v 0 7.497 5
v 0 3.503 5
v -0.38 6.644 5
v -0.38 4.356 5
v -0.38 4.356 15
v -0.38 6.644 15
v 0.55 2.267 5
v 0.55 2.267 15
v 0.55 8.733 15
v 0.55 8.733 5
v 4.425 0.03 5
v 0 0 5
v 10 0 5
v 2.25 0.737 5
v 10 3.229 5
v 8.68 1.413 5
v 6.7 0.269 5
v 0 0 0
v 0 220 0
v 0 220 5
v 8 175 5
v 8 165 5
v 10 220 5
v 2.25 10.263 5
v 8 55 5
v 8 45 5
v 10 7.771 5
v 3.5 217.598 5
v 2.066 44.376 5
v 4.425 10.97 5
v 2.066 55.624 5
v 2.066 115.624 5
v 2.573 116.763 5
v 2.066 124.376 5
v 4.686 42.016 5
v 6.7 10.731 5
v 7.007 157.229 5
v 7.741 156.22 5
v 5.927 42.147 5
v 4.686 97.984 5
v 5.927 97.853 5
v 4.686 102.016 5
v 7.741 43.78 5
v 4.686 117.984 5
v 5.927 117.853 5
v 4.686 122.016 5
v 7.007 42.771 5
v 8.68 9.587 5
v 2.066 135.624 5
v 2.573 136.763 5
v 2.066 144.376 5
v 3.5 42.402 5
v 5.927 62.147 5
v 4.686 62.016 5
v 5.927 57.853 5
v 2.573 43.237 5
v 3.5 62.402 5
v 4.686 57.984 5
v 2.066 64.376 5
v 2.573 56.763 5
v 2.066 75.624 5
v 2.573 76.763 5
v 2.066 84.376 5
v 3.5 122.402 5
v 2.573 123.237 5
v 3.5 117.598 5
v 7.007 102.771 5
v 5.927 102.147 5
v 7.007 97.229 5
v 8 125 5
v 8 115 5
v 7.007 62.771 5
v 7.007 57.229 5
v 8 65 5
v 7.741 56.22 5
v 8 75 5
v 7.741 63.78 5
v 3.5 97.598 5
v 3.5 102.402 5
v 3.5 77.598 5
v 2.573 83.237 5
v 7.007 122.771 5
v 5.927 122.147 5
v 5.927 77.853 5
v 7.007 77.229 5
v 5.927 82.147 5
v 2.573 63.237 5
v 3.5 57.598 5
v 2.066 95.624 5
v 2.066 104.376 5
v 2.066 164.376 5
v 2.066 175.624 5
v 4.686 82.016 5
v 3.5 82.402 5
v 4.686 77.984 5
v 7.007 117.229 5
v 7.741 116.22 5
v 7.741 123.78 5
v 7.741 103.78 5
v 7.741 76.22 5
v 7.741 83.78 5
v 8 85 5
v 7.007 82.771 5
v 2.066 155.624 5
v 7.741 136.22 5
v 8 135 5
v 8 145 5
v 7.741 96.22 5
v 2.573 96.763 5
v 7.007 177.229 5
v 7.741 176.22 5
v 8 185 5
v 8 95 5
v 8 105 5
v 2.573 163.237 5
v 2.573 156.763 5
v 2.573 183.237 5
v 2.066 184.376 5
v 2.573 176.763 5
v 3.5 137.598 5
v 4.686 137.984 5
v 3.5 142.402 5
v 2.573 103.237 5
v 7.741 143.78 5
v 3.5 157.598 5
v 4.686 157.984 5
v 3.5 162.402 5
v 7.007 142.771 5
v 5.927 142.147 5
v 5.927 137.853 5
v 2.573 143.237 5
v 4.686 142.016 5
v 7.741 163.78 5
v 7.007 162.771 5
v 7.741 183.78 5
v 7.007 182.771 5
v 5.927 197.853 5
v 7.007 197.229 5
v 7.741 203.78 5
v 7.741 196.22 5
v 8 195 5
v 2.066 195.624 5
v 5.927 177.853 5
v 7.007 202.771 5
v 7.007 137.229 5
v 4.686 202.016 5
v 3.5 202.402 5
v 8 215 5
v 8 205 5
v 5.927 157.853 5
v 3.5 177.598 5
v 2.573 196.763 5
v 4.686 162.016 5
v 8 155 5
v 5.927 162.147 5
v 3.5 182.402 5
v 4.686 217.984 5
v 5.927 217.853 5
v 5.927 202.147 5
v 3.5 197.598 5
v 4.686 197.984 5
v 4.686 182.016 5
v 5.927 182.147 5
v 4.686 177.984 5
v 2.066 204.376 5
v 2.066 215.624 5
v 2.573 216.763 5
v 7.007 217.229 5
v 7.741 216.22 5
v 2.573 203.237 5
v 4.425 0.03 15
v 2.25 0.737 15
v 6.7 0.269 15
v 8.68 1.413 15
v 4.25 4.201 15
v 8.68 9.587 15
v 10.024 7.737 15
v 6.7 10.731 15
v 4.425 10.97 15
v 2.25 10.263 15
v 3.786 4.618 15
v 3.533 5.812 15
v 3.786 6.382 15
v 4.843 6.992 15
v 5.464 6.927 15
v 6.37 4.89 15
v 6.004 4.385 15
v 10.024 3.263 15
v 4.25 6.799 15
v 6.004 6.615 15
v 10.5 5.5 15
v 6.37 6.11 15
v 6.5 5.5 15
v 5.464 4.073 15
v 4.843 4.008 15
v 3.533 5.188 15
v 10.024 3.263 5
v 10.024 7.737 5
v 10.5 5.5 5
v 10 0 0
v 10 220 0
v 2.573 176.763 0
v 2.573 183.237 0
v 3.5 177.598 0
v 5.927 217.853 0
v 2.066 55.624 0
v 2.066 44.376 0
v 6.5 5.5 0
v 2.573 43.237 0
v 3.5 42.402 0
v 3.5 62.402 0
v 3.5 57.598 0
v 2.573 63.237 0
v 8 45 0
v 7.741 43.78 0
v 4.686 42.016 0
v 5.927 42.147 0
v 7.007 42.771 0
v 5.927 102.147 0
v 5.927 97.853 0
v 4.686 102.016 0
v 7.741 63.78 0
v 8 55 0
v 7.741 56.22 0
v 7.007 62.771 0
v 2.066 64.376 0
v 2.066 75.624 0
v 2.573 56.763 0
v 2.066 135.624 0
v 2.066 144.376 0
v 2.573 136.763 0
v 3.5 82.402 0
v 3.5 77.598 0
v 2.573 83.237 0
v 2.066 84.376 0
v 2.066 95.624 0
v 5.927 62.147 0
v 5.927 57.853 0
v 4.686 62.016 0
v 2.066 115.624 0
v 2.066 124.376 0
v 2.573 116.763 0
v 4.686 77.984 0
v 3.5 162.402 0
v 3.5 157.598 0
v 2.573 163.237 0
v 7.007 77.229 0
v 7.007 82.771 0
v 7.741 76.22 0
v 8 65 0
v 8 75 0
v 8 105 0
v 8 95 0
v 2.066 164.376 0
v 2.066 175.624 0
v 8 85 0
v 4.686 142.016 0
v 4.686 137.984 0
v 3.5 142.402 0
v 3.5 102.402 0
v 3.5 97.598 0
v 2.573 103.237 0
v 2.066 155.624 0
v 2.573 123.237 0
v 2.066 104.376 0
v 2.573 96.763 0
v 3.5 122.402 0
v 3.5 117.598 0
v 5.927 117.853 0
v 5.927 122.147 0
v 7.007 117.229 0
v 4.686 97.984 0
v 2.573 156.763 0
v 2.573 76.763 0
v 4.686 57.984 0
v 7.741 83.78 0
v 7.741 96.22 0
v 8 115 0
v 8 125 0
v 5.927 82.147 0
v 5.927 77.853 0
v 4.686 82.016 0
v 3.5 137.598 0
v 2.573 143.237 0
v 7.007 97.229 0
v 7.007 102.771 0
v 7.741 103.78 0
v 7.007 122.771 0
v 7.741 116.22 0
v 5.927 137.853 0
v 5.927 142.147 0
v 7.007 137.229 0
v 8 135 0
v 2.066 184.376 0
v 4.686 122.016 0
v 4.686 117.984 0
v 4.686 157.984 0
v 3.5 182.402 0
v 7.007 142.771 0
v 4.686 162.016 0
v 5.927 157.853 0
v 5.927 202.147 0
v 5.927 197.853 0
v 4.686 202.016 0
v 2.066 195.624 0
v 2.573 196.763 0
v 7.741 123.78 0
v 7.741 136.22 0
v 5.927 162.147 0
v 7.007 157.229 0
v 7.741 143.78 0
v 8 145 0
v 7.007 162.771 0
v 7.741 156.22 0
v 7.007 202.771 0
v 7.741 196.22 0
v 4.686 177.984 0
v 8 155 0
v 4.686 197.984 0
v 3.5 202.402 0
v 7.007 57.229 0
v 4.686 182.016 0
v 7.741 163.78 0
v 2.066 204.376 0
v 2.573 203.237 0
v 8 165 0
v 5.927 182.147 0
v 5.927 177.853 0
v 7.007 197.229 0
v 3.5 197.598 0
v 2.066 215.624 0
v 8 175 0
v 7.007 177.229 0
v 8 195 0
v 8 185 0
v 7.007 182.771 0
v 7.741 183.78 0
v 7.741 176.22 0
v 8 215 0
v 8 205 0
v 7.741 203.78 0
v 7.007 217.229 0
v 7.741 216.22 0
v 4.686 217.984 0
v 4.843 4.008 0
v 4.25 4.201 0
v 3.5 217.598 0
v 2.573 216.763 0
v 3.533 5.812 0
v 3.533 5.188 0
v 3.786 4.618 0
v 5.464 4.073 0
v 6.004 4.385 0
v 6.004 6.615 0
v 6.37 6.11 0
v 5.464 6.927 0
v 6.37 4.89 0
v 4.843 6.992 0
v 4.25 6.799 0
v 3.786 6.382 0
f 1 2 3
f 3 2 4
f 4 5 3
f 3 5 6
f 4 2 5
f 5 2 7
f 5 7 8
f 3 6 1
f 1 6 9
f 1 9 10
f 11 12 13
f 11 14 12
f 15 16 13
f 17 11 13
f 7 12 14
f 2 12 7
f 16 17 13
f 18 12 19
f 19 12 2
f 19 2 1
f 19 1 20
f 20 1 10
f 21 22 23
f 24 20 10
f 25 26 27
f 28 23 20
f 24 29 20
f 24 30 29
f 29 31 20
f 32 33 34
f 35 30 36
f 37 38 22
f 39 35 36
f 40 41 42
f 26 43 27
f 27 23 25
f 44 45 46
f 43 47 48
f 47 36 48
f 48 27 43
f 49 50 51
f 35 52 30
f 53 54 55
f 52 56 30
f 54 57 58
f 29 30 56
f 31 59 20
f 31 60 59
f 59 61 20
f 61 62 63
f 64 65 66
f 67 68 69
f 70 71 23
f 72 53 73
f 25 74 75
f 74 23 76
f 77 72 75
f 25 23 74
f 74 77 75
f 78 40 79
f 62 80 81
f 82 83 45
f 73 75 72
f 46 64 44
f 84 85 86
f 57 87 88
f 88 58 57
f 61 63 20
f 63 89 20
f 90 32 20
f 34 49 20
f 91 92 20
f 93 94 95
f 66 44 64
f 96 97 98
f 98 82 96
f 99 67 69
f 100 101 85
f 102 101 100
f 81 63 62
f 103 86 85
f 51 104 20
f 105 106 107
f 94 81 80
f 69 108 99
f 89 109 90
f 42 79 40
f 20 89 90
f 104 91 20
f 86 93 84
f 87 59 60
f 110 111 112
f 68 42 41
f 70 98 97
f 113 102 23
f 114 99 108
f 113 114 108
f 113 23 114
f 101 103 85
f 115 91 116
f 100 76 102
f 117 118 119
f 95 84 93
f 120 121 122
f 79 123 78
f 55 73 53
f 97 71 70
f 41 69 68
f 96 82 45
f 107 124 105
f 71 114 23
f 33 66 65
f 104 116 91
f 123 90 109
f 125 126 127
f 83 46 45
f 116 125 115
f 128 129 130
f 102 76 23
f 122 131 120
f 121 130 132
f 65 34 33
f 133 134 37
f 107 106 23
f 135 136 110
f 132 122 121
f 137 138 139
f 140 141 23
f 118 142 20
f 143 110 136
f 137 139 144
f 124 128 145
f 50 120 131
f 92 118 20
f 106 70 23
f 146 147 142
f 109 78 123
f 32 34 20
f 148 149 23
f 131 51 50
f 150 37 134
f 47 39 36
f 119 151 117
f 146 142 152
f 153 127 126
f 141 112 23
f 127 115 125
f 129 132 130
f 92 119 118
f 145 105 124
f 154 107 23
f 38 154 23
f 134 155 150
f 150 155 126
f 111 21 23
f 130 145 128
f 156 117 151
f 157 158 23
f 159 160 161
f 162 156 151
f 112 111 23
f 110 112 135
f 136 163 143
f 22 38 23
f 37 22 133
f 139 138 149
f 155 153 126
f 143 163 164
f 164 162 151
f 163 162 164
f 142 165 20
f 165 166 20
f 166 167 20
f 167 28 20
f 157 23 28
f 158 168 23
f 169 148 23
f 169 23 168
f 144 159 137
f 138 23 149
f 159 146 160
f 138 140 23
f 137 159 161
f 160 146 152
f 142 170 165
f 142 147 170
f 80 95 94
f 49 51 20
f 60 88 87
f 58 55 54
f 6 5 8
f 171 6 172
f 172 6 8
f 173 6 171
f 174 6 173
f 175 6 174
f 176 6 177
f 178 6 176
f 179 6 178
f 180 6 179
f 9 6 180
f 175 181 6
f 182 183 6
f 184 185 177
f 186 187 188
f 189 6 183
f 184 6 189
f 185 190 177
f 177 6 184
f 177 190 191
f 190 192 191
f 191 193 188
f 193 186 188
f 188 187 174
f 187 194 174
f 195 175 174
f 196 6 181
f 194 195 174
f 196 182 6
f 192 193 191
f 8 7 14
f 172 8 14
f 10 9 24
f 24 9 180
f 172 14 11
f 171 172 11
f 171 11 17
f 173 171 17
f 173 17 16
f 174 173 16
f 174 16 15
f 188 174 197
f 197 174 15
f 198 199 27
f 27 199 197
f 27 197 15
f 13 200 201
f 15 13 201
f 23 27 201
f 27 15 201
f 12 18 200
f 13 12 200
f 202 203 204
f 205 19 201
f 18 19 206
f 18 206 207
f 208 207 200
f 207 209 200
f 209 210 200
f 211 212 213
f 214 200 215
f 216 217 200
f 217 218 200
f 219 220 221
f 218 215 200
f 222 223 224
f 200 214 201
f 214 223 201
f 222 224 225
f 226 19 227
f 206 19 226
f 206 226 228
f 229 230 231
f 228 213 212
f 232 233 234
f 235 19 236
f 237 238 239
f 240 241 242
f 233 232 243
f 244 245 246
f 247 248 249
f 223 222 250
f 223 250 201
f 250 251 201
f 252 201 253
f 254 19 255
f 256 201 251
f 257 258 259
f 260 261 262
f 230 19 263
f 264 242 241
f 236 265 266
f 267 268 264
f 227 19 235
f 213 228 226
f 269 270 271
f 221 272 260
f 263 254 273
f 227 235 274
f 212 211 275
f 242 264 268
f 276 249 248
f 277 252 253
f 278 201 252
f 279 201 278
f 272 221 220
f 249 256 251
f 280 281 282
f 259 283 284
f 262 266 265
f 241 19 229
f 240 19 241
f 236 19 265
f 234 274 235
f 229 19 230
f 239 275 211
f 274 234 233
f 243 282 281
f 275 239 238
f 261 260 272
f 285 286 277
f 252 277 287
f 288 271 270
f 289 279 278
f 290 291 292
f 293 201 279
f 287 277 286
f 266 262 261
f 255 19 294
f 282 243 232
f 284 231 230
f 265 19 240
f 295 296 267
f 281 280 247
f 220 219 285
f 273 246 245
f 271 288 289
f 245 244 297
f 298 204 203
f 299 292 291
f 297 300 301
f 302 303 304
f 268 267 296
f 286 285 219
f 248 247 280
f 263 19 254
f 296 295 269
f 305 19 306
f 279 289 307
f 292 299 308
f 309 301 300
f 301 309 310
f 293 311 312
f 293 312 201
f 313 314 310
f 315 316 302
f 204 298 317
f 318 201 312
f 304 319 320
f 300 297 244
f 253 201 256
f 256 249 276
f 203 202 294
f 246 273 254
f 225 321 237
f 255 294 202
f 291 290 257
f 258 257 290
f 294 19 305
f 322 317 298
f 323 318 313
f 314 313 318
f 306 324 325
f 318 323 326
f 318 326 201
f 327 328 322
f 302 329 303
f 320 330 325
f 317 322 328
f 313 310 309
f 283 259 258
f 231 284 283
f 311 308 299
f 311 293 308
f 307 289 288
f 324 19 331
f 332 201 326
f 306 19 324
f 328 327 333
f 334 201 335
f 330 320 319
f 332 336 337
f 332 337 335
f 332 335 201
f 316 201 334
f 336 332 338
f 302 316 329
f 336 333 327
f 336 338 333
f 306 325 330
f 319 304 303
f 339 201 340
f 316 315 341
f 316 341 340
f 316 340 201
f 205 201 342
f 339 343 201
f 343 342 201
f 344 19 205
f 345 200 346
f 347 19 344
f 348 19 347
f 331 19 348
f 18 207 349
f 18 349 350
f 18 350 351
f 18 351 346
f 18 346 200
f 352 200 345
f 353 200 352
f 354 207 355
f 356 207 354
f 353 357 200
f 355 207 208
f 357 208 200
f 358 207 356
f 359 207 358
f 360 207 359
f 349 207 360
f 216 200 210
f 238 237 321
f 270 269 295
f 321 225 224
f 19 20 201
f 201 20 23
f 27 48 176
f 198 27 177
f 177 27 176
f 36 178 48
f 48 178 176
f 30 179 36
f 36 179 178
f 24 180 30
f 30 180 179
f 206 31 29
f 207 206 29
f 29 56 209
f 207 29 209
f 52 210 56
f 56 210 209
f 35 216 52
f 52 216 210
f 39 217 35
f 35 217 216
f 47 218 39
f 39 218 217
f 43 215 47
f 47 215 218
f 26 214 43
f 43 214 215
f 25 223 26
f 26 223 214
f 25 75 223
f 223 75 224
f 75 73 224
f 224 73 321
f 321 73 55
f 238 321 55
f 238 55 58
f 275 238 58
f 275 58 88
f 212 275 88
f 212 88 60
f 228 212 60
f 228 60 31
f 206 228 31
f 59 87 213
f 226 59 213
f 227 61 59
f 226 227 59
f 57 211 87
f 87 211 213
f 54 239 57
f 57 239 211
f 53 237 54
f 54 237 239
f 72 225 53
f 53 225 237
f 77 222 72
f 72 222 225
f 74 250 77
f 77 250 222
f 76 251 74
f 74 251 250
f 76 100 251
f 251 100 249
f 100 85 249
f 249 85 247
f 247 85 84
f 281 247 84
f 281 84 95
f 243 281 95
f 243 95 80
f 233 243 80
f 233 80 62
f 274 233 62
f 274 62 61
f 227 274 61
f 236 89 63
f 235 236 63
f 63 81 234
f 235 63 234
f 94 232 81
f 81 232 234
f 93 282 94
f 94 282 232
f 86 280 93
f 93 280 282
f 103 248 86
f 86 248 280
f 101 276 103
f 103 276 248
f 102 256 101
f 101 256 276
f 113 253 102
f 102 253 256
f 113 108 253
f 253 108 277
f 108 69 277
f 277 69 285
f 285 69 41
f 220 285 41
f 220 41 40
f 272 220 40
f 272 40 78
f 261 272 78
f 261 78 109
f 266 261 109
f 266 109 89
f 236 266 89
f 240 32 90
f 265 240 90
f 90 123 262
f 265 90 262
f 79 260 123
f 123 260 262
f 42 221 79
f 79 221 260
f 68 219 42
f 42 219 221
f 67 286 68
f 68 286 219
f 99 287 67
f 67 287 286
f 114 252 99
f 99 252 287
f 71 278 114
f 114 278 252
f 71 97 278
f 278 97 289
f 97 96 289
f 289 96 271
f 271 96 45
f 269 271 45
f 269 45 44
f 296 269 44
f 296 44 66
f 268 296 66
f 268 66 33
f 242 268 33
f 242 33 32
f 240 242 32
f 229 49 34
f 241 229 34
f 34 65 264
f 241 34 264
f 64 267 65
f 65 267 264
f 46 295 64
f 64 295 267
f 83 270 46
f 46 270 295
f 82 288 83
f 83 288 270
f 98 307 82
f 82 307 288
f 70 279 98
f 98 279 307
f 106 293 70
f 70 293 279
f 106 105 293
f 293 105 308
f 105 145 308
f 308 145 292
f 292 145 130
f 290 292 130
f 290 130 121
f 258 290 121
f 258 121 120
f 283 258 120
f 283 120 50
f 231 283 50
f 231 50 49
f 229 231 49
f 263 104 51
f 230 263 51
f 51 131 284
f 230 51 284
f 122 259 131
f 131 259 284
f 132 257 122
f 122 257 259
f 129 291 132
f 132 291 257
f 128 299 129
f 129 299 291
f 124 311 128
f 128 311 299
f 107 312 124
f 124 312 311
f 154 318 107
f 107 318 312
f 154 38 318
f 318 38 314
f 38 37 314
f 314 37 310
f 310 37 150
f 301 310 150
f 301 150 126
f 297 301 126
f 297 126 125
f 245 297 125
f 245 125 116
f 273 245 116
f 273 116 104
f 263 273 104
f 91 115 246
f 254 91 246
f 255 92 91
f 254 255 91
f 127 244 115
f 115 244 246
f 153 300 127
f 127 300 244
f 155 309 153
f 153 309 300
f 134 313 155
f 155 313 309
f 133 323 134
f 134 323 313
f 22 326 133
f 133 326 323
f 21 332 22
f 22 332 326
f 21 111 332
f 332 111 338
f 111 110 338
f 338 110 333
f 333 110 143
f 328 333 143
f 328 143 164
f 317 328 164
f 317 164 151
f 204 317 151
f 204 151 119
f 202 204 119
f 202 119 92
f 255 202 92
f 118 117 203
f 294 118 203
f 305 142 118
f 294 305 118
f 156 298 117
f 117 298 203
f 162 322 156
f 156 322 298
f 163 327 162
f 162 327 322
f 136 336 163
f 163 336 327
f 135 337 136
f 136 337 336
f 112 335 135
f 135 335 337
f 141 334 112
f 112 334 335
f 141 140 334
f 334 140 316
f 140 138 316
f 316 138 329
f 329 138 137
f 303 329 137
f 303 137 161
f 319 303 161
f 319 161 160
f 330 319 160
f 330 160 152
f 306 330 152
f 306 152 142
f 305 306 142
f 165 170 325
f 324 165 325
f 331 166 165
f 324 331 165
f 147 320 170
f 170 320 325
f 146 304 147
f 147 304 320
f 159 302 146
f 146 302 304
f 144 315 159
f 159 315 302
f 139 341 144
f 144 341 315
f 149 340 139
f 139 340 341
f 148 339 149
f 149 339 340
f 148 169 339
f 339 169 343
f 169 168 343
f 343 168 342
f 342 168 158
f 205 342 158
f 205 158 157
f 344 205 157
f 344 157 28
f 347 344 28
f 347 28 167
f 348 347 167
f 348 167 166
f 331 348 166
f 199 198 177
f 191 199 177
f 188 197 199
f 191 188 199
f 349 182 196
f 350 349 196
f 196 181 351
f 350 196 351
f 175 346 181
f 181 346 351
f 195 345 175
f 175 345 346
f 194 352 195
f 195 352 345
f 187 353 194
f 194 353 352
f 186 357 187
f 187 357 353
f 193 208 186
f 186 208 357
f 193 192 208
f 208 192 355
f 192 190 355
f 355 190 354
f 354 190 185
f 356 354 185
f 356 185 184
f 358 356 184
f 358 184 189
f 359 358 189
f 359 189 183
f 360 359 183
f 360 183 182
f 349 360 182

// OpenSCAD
Width = 10;
Length = 220;
thickness = 5;

shaftDiameter = 11;
shaftLength = 10;

scewDiameter = 2 + 1;

edging = 1;

$fn = 15;

difference()
{
	union()
	{
	cube([Width, Length, thickness]);
	translate([Width/2, shaftDiameter/2, thickness]) cylinder(d=shaftDiameter, h=shaftLength);
	}
// screw hole
	translate([Width/2, shaftDiameter/2, 0]) cylinder(d=scewDiameter, h=shaftLength + thickness);


// create a series of holes 
	for ( i = [2 : Length/Width] )
	{
		hull()
		{
				translate([Width/2, i * 20 + Width/2, 0]) cylinder(d=Width -4, h=shaftLength);		
				translate([Width/2, i * 20 + Width + Width/2, 0]) cylinder(d=Width -4, h=shaftLength);
		}

	}
}
